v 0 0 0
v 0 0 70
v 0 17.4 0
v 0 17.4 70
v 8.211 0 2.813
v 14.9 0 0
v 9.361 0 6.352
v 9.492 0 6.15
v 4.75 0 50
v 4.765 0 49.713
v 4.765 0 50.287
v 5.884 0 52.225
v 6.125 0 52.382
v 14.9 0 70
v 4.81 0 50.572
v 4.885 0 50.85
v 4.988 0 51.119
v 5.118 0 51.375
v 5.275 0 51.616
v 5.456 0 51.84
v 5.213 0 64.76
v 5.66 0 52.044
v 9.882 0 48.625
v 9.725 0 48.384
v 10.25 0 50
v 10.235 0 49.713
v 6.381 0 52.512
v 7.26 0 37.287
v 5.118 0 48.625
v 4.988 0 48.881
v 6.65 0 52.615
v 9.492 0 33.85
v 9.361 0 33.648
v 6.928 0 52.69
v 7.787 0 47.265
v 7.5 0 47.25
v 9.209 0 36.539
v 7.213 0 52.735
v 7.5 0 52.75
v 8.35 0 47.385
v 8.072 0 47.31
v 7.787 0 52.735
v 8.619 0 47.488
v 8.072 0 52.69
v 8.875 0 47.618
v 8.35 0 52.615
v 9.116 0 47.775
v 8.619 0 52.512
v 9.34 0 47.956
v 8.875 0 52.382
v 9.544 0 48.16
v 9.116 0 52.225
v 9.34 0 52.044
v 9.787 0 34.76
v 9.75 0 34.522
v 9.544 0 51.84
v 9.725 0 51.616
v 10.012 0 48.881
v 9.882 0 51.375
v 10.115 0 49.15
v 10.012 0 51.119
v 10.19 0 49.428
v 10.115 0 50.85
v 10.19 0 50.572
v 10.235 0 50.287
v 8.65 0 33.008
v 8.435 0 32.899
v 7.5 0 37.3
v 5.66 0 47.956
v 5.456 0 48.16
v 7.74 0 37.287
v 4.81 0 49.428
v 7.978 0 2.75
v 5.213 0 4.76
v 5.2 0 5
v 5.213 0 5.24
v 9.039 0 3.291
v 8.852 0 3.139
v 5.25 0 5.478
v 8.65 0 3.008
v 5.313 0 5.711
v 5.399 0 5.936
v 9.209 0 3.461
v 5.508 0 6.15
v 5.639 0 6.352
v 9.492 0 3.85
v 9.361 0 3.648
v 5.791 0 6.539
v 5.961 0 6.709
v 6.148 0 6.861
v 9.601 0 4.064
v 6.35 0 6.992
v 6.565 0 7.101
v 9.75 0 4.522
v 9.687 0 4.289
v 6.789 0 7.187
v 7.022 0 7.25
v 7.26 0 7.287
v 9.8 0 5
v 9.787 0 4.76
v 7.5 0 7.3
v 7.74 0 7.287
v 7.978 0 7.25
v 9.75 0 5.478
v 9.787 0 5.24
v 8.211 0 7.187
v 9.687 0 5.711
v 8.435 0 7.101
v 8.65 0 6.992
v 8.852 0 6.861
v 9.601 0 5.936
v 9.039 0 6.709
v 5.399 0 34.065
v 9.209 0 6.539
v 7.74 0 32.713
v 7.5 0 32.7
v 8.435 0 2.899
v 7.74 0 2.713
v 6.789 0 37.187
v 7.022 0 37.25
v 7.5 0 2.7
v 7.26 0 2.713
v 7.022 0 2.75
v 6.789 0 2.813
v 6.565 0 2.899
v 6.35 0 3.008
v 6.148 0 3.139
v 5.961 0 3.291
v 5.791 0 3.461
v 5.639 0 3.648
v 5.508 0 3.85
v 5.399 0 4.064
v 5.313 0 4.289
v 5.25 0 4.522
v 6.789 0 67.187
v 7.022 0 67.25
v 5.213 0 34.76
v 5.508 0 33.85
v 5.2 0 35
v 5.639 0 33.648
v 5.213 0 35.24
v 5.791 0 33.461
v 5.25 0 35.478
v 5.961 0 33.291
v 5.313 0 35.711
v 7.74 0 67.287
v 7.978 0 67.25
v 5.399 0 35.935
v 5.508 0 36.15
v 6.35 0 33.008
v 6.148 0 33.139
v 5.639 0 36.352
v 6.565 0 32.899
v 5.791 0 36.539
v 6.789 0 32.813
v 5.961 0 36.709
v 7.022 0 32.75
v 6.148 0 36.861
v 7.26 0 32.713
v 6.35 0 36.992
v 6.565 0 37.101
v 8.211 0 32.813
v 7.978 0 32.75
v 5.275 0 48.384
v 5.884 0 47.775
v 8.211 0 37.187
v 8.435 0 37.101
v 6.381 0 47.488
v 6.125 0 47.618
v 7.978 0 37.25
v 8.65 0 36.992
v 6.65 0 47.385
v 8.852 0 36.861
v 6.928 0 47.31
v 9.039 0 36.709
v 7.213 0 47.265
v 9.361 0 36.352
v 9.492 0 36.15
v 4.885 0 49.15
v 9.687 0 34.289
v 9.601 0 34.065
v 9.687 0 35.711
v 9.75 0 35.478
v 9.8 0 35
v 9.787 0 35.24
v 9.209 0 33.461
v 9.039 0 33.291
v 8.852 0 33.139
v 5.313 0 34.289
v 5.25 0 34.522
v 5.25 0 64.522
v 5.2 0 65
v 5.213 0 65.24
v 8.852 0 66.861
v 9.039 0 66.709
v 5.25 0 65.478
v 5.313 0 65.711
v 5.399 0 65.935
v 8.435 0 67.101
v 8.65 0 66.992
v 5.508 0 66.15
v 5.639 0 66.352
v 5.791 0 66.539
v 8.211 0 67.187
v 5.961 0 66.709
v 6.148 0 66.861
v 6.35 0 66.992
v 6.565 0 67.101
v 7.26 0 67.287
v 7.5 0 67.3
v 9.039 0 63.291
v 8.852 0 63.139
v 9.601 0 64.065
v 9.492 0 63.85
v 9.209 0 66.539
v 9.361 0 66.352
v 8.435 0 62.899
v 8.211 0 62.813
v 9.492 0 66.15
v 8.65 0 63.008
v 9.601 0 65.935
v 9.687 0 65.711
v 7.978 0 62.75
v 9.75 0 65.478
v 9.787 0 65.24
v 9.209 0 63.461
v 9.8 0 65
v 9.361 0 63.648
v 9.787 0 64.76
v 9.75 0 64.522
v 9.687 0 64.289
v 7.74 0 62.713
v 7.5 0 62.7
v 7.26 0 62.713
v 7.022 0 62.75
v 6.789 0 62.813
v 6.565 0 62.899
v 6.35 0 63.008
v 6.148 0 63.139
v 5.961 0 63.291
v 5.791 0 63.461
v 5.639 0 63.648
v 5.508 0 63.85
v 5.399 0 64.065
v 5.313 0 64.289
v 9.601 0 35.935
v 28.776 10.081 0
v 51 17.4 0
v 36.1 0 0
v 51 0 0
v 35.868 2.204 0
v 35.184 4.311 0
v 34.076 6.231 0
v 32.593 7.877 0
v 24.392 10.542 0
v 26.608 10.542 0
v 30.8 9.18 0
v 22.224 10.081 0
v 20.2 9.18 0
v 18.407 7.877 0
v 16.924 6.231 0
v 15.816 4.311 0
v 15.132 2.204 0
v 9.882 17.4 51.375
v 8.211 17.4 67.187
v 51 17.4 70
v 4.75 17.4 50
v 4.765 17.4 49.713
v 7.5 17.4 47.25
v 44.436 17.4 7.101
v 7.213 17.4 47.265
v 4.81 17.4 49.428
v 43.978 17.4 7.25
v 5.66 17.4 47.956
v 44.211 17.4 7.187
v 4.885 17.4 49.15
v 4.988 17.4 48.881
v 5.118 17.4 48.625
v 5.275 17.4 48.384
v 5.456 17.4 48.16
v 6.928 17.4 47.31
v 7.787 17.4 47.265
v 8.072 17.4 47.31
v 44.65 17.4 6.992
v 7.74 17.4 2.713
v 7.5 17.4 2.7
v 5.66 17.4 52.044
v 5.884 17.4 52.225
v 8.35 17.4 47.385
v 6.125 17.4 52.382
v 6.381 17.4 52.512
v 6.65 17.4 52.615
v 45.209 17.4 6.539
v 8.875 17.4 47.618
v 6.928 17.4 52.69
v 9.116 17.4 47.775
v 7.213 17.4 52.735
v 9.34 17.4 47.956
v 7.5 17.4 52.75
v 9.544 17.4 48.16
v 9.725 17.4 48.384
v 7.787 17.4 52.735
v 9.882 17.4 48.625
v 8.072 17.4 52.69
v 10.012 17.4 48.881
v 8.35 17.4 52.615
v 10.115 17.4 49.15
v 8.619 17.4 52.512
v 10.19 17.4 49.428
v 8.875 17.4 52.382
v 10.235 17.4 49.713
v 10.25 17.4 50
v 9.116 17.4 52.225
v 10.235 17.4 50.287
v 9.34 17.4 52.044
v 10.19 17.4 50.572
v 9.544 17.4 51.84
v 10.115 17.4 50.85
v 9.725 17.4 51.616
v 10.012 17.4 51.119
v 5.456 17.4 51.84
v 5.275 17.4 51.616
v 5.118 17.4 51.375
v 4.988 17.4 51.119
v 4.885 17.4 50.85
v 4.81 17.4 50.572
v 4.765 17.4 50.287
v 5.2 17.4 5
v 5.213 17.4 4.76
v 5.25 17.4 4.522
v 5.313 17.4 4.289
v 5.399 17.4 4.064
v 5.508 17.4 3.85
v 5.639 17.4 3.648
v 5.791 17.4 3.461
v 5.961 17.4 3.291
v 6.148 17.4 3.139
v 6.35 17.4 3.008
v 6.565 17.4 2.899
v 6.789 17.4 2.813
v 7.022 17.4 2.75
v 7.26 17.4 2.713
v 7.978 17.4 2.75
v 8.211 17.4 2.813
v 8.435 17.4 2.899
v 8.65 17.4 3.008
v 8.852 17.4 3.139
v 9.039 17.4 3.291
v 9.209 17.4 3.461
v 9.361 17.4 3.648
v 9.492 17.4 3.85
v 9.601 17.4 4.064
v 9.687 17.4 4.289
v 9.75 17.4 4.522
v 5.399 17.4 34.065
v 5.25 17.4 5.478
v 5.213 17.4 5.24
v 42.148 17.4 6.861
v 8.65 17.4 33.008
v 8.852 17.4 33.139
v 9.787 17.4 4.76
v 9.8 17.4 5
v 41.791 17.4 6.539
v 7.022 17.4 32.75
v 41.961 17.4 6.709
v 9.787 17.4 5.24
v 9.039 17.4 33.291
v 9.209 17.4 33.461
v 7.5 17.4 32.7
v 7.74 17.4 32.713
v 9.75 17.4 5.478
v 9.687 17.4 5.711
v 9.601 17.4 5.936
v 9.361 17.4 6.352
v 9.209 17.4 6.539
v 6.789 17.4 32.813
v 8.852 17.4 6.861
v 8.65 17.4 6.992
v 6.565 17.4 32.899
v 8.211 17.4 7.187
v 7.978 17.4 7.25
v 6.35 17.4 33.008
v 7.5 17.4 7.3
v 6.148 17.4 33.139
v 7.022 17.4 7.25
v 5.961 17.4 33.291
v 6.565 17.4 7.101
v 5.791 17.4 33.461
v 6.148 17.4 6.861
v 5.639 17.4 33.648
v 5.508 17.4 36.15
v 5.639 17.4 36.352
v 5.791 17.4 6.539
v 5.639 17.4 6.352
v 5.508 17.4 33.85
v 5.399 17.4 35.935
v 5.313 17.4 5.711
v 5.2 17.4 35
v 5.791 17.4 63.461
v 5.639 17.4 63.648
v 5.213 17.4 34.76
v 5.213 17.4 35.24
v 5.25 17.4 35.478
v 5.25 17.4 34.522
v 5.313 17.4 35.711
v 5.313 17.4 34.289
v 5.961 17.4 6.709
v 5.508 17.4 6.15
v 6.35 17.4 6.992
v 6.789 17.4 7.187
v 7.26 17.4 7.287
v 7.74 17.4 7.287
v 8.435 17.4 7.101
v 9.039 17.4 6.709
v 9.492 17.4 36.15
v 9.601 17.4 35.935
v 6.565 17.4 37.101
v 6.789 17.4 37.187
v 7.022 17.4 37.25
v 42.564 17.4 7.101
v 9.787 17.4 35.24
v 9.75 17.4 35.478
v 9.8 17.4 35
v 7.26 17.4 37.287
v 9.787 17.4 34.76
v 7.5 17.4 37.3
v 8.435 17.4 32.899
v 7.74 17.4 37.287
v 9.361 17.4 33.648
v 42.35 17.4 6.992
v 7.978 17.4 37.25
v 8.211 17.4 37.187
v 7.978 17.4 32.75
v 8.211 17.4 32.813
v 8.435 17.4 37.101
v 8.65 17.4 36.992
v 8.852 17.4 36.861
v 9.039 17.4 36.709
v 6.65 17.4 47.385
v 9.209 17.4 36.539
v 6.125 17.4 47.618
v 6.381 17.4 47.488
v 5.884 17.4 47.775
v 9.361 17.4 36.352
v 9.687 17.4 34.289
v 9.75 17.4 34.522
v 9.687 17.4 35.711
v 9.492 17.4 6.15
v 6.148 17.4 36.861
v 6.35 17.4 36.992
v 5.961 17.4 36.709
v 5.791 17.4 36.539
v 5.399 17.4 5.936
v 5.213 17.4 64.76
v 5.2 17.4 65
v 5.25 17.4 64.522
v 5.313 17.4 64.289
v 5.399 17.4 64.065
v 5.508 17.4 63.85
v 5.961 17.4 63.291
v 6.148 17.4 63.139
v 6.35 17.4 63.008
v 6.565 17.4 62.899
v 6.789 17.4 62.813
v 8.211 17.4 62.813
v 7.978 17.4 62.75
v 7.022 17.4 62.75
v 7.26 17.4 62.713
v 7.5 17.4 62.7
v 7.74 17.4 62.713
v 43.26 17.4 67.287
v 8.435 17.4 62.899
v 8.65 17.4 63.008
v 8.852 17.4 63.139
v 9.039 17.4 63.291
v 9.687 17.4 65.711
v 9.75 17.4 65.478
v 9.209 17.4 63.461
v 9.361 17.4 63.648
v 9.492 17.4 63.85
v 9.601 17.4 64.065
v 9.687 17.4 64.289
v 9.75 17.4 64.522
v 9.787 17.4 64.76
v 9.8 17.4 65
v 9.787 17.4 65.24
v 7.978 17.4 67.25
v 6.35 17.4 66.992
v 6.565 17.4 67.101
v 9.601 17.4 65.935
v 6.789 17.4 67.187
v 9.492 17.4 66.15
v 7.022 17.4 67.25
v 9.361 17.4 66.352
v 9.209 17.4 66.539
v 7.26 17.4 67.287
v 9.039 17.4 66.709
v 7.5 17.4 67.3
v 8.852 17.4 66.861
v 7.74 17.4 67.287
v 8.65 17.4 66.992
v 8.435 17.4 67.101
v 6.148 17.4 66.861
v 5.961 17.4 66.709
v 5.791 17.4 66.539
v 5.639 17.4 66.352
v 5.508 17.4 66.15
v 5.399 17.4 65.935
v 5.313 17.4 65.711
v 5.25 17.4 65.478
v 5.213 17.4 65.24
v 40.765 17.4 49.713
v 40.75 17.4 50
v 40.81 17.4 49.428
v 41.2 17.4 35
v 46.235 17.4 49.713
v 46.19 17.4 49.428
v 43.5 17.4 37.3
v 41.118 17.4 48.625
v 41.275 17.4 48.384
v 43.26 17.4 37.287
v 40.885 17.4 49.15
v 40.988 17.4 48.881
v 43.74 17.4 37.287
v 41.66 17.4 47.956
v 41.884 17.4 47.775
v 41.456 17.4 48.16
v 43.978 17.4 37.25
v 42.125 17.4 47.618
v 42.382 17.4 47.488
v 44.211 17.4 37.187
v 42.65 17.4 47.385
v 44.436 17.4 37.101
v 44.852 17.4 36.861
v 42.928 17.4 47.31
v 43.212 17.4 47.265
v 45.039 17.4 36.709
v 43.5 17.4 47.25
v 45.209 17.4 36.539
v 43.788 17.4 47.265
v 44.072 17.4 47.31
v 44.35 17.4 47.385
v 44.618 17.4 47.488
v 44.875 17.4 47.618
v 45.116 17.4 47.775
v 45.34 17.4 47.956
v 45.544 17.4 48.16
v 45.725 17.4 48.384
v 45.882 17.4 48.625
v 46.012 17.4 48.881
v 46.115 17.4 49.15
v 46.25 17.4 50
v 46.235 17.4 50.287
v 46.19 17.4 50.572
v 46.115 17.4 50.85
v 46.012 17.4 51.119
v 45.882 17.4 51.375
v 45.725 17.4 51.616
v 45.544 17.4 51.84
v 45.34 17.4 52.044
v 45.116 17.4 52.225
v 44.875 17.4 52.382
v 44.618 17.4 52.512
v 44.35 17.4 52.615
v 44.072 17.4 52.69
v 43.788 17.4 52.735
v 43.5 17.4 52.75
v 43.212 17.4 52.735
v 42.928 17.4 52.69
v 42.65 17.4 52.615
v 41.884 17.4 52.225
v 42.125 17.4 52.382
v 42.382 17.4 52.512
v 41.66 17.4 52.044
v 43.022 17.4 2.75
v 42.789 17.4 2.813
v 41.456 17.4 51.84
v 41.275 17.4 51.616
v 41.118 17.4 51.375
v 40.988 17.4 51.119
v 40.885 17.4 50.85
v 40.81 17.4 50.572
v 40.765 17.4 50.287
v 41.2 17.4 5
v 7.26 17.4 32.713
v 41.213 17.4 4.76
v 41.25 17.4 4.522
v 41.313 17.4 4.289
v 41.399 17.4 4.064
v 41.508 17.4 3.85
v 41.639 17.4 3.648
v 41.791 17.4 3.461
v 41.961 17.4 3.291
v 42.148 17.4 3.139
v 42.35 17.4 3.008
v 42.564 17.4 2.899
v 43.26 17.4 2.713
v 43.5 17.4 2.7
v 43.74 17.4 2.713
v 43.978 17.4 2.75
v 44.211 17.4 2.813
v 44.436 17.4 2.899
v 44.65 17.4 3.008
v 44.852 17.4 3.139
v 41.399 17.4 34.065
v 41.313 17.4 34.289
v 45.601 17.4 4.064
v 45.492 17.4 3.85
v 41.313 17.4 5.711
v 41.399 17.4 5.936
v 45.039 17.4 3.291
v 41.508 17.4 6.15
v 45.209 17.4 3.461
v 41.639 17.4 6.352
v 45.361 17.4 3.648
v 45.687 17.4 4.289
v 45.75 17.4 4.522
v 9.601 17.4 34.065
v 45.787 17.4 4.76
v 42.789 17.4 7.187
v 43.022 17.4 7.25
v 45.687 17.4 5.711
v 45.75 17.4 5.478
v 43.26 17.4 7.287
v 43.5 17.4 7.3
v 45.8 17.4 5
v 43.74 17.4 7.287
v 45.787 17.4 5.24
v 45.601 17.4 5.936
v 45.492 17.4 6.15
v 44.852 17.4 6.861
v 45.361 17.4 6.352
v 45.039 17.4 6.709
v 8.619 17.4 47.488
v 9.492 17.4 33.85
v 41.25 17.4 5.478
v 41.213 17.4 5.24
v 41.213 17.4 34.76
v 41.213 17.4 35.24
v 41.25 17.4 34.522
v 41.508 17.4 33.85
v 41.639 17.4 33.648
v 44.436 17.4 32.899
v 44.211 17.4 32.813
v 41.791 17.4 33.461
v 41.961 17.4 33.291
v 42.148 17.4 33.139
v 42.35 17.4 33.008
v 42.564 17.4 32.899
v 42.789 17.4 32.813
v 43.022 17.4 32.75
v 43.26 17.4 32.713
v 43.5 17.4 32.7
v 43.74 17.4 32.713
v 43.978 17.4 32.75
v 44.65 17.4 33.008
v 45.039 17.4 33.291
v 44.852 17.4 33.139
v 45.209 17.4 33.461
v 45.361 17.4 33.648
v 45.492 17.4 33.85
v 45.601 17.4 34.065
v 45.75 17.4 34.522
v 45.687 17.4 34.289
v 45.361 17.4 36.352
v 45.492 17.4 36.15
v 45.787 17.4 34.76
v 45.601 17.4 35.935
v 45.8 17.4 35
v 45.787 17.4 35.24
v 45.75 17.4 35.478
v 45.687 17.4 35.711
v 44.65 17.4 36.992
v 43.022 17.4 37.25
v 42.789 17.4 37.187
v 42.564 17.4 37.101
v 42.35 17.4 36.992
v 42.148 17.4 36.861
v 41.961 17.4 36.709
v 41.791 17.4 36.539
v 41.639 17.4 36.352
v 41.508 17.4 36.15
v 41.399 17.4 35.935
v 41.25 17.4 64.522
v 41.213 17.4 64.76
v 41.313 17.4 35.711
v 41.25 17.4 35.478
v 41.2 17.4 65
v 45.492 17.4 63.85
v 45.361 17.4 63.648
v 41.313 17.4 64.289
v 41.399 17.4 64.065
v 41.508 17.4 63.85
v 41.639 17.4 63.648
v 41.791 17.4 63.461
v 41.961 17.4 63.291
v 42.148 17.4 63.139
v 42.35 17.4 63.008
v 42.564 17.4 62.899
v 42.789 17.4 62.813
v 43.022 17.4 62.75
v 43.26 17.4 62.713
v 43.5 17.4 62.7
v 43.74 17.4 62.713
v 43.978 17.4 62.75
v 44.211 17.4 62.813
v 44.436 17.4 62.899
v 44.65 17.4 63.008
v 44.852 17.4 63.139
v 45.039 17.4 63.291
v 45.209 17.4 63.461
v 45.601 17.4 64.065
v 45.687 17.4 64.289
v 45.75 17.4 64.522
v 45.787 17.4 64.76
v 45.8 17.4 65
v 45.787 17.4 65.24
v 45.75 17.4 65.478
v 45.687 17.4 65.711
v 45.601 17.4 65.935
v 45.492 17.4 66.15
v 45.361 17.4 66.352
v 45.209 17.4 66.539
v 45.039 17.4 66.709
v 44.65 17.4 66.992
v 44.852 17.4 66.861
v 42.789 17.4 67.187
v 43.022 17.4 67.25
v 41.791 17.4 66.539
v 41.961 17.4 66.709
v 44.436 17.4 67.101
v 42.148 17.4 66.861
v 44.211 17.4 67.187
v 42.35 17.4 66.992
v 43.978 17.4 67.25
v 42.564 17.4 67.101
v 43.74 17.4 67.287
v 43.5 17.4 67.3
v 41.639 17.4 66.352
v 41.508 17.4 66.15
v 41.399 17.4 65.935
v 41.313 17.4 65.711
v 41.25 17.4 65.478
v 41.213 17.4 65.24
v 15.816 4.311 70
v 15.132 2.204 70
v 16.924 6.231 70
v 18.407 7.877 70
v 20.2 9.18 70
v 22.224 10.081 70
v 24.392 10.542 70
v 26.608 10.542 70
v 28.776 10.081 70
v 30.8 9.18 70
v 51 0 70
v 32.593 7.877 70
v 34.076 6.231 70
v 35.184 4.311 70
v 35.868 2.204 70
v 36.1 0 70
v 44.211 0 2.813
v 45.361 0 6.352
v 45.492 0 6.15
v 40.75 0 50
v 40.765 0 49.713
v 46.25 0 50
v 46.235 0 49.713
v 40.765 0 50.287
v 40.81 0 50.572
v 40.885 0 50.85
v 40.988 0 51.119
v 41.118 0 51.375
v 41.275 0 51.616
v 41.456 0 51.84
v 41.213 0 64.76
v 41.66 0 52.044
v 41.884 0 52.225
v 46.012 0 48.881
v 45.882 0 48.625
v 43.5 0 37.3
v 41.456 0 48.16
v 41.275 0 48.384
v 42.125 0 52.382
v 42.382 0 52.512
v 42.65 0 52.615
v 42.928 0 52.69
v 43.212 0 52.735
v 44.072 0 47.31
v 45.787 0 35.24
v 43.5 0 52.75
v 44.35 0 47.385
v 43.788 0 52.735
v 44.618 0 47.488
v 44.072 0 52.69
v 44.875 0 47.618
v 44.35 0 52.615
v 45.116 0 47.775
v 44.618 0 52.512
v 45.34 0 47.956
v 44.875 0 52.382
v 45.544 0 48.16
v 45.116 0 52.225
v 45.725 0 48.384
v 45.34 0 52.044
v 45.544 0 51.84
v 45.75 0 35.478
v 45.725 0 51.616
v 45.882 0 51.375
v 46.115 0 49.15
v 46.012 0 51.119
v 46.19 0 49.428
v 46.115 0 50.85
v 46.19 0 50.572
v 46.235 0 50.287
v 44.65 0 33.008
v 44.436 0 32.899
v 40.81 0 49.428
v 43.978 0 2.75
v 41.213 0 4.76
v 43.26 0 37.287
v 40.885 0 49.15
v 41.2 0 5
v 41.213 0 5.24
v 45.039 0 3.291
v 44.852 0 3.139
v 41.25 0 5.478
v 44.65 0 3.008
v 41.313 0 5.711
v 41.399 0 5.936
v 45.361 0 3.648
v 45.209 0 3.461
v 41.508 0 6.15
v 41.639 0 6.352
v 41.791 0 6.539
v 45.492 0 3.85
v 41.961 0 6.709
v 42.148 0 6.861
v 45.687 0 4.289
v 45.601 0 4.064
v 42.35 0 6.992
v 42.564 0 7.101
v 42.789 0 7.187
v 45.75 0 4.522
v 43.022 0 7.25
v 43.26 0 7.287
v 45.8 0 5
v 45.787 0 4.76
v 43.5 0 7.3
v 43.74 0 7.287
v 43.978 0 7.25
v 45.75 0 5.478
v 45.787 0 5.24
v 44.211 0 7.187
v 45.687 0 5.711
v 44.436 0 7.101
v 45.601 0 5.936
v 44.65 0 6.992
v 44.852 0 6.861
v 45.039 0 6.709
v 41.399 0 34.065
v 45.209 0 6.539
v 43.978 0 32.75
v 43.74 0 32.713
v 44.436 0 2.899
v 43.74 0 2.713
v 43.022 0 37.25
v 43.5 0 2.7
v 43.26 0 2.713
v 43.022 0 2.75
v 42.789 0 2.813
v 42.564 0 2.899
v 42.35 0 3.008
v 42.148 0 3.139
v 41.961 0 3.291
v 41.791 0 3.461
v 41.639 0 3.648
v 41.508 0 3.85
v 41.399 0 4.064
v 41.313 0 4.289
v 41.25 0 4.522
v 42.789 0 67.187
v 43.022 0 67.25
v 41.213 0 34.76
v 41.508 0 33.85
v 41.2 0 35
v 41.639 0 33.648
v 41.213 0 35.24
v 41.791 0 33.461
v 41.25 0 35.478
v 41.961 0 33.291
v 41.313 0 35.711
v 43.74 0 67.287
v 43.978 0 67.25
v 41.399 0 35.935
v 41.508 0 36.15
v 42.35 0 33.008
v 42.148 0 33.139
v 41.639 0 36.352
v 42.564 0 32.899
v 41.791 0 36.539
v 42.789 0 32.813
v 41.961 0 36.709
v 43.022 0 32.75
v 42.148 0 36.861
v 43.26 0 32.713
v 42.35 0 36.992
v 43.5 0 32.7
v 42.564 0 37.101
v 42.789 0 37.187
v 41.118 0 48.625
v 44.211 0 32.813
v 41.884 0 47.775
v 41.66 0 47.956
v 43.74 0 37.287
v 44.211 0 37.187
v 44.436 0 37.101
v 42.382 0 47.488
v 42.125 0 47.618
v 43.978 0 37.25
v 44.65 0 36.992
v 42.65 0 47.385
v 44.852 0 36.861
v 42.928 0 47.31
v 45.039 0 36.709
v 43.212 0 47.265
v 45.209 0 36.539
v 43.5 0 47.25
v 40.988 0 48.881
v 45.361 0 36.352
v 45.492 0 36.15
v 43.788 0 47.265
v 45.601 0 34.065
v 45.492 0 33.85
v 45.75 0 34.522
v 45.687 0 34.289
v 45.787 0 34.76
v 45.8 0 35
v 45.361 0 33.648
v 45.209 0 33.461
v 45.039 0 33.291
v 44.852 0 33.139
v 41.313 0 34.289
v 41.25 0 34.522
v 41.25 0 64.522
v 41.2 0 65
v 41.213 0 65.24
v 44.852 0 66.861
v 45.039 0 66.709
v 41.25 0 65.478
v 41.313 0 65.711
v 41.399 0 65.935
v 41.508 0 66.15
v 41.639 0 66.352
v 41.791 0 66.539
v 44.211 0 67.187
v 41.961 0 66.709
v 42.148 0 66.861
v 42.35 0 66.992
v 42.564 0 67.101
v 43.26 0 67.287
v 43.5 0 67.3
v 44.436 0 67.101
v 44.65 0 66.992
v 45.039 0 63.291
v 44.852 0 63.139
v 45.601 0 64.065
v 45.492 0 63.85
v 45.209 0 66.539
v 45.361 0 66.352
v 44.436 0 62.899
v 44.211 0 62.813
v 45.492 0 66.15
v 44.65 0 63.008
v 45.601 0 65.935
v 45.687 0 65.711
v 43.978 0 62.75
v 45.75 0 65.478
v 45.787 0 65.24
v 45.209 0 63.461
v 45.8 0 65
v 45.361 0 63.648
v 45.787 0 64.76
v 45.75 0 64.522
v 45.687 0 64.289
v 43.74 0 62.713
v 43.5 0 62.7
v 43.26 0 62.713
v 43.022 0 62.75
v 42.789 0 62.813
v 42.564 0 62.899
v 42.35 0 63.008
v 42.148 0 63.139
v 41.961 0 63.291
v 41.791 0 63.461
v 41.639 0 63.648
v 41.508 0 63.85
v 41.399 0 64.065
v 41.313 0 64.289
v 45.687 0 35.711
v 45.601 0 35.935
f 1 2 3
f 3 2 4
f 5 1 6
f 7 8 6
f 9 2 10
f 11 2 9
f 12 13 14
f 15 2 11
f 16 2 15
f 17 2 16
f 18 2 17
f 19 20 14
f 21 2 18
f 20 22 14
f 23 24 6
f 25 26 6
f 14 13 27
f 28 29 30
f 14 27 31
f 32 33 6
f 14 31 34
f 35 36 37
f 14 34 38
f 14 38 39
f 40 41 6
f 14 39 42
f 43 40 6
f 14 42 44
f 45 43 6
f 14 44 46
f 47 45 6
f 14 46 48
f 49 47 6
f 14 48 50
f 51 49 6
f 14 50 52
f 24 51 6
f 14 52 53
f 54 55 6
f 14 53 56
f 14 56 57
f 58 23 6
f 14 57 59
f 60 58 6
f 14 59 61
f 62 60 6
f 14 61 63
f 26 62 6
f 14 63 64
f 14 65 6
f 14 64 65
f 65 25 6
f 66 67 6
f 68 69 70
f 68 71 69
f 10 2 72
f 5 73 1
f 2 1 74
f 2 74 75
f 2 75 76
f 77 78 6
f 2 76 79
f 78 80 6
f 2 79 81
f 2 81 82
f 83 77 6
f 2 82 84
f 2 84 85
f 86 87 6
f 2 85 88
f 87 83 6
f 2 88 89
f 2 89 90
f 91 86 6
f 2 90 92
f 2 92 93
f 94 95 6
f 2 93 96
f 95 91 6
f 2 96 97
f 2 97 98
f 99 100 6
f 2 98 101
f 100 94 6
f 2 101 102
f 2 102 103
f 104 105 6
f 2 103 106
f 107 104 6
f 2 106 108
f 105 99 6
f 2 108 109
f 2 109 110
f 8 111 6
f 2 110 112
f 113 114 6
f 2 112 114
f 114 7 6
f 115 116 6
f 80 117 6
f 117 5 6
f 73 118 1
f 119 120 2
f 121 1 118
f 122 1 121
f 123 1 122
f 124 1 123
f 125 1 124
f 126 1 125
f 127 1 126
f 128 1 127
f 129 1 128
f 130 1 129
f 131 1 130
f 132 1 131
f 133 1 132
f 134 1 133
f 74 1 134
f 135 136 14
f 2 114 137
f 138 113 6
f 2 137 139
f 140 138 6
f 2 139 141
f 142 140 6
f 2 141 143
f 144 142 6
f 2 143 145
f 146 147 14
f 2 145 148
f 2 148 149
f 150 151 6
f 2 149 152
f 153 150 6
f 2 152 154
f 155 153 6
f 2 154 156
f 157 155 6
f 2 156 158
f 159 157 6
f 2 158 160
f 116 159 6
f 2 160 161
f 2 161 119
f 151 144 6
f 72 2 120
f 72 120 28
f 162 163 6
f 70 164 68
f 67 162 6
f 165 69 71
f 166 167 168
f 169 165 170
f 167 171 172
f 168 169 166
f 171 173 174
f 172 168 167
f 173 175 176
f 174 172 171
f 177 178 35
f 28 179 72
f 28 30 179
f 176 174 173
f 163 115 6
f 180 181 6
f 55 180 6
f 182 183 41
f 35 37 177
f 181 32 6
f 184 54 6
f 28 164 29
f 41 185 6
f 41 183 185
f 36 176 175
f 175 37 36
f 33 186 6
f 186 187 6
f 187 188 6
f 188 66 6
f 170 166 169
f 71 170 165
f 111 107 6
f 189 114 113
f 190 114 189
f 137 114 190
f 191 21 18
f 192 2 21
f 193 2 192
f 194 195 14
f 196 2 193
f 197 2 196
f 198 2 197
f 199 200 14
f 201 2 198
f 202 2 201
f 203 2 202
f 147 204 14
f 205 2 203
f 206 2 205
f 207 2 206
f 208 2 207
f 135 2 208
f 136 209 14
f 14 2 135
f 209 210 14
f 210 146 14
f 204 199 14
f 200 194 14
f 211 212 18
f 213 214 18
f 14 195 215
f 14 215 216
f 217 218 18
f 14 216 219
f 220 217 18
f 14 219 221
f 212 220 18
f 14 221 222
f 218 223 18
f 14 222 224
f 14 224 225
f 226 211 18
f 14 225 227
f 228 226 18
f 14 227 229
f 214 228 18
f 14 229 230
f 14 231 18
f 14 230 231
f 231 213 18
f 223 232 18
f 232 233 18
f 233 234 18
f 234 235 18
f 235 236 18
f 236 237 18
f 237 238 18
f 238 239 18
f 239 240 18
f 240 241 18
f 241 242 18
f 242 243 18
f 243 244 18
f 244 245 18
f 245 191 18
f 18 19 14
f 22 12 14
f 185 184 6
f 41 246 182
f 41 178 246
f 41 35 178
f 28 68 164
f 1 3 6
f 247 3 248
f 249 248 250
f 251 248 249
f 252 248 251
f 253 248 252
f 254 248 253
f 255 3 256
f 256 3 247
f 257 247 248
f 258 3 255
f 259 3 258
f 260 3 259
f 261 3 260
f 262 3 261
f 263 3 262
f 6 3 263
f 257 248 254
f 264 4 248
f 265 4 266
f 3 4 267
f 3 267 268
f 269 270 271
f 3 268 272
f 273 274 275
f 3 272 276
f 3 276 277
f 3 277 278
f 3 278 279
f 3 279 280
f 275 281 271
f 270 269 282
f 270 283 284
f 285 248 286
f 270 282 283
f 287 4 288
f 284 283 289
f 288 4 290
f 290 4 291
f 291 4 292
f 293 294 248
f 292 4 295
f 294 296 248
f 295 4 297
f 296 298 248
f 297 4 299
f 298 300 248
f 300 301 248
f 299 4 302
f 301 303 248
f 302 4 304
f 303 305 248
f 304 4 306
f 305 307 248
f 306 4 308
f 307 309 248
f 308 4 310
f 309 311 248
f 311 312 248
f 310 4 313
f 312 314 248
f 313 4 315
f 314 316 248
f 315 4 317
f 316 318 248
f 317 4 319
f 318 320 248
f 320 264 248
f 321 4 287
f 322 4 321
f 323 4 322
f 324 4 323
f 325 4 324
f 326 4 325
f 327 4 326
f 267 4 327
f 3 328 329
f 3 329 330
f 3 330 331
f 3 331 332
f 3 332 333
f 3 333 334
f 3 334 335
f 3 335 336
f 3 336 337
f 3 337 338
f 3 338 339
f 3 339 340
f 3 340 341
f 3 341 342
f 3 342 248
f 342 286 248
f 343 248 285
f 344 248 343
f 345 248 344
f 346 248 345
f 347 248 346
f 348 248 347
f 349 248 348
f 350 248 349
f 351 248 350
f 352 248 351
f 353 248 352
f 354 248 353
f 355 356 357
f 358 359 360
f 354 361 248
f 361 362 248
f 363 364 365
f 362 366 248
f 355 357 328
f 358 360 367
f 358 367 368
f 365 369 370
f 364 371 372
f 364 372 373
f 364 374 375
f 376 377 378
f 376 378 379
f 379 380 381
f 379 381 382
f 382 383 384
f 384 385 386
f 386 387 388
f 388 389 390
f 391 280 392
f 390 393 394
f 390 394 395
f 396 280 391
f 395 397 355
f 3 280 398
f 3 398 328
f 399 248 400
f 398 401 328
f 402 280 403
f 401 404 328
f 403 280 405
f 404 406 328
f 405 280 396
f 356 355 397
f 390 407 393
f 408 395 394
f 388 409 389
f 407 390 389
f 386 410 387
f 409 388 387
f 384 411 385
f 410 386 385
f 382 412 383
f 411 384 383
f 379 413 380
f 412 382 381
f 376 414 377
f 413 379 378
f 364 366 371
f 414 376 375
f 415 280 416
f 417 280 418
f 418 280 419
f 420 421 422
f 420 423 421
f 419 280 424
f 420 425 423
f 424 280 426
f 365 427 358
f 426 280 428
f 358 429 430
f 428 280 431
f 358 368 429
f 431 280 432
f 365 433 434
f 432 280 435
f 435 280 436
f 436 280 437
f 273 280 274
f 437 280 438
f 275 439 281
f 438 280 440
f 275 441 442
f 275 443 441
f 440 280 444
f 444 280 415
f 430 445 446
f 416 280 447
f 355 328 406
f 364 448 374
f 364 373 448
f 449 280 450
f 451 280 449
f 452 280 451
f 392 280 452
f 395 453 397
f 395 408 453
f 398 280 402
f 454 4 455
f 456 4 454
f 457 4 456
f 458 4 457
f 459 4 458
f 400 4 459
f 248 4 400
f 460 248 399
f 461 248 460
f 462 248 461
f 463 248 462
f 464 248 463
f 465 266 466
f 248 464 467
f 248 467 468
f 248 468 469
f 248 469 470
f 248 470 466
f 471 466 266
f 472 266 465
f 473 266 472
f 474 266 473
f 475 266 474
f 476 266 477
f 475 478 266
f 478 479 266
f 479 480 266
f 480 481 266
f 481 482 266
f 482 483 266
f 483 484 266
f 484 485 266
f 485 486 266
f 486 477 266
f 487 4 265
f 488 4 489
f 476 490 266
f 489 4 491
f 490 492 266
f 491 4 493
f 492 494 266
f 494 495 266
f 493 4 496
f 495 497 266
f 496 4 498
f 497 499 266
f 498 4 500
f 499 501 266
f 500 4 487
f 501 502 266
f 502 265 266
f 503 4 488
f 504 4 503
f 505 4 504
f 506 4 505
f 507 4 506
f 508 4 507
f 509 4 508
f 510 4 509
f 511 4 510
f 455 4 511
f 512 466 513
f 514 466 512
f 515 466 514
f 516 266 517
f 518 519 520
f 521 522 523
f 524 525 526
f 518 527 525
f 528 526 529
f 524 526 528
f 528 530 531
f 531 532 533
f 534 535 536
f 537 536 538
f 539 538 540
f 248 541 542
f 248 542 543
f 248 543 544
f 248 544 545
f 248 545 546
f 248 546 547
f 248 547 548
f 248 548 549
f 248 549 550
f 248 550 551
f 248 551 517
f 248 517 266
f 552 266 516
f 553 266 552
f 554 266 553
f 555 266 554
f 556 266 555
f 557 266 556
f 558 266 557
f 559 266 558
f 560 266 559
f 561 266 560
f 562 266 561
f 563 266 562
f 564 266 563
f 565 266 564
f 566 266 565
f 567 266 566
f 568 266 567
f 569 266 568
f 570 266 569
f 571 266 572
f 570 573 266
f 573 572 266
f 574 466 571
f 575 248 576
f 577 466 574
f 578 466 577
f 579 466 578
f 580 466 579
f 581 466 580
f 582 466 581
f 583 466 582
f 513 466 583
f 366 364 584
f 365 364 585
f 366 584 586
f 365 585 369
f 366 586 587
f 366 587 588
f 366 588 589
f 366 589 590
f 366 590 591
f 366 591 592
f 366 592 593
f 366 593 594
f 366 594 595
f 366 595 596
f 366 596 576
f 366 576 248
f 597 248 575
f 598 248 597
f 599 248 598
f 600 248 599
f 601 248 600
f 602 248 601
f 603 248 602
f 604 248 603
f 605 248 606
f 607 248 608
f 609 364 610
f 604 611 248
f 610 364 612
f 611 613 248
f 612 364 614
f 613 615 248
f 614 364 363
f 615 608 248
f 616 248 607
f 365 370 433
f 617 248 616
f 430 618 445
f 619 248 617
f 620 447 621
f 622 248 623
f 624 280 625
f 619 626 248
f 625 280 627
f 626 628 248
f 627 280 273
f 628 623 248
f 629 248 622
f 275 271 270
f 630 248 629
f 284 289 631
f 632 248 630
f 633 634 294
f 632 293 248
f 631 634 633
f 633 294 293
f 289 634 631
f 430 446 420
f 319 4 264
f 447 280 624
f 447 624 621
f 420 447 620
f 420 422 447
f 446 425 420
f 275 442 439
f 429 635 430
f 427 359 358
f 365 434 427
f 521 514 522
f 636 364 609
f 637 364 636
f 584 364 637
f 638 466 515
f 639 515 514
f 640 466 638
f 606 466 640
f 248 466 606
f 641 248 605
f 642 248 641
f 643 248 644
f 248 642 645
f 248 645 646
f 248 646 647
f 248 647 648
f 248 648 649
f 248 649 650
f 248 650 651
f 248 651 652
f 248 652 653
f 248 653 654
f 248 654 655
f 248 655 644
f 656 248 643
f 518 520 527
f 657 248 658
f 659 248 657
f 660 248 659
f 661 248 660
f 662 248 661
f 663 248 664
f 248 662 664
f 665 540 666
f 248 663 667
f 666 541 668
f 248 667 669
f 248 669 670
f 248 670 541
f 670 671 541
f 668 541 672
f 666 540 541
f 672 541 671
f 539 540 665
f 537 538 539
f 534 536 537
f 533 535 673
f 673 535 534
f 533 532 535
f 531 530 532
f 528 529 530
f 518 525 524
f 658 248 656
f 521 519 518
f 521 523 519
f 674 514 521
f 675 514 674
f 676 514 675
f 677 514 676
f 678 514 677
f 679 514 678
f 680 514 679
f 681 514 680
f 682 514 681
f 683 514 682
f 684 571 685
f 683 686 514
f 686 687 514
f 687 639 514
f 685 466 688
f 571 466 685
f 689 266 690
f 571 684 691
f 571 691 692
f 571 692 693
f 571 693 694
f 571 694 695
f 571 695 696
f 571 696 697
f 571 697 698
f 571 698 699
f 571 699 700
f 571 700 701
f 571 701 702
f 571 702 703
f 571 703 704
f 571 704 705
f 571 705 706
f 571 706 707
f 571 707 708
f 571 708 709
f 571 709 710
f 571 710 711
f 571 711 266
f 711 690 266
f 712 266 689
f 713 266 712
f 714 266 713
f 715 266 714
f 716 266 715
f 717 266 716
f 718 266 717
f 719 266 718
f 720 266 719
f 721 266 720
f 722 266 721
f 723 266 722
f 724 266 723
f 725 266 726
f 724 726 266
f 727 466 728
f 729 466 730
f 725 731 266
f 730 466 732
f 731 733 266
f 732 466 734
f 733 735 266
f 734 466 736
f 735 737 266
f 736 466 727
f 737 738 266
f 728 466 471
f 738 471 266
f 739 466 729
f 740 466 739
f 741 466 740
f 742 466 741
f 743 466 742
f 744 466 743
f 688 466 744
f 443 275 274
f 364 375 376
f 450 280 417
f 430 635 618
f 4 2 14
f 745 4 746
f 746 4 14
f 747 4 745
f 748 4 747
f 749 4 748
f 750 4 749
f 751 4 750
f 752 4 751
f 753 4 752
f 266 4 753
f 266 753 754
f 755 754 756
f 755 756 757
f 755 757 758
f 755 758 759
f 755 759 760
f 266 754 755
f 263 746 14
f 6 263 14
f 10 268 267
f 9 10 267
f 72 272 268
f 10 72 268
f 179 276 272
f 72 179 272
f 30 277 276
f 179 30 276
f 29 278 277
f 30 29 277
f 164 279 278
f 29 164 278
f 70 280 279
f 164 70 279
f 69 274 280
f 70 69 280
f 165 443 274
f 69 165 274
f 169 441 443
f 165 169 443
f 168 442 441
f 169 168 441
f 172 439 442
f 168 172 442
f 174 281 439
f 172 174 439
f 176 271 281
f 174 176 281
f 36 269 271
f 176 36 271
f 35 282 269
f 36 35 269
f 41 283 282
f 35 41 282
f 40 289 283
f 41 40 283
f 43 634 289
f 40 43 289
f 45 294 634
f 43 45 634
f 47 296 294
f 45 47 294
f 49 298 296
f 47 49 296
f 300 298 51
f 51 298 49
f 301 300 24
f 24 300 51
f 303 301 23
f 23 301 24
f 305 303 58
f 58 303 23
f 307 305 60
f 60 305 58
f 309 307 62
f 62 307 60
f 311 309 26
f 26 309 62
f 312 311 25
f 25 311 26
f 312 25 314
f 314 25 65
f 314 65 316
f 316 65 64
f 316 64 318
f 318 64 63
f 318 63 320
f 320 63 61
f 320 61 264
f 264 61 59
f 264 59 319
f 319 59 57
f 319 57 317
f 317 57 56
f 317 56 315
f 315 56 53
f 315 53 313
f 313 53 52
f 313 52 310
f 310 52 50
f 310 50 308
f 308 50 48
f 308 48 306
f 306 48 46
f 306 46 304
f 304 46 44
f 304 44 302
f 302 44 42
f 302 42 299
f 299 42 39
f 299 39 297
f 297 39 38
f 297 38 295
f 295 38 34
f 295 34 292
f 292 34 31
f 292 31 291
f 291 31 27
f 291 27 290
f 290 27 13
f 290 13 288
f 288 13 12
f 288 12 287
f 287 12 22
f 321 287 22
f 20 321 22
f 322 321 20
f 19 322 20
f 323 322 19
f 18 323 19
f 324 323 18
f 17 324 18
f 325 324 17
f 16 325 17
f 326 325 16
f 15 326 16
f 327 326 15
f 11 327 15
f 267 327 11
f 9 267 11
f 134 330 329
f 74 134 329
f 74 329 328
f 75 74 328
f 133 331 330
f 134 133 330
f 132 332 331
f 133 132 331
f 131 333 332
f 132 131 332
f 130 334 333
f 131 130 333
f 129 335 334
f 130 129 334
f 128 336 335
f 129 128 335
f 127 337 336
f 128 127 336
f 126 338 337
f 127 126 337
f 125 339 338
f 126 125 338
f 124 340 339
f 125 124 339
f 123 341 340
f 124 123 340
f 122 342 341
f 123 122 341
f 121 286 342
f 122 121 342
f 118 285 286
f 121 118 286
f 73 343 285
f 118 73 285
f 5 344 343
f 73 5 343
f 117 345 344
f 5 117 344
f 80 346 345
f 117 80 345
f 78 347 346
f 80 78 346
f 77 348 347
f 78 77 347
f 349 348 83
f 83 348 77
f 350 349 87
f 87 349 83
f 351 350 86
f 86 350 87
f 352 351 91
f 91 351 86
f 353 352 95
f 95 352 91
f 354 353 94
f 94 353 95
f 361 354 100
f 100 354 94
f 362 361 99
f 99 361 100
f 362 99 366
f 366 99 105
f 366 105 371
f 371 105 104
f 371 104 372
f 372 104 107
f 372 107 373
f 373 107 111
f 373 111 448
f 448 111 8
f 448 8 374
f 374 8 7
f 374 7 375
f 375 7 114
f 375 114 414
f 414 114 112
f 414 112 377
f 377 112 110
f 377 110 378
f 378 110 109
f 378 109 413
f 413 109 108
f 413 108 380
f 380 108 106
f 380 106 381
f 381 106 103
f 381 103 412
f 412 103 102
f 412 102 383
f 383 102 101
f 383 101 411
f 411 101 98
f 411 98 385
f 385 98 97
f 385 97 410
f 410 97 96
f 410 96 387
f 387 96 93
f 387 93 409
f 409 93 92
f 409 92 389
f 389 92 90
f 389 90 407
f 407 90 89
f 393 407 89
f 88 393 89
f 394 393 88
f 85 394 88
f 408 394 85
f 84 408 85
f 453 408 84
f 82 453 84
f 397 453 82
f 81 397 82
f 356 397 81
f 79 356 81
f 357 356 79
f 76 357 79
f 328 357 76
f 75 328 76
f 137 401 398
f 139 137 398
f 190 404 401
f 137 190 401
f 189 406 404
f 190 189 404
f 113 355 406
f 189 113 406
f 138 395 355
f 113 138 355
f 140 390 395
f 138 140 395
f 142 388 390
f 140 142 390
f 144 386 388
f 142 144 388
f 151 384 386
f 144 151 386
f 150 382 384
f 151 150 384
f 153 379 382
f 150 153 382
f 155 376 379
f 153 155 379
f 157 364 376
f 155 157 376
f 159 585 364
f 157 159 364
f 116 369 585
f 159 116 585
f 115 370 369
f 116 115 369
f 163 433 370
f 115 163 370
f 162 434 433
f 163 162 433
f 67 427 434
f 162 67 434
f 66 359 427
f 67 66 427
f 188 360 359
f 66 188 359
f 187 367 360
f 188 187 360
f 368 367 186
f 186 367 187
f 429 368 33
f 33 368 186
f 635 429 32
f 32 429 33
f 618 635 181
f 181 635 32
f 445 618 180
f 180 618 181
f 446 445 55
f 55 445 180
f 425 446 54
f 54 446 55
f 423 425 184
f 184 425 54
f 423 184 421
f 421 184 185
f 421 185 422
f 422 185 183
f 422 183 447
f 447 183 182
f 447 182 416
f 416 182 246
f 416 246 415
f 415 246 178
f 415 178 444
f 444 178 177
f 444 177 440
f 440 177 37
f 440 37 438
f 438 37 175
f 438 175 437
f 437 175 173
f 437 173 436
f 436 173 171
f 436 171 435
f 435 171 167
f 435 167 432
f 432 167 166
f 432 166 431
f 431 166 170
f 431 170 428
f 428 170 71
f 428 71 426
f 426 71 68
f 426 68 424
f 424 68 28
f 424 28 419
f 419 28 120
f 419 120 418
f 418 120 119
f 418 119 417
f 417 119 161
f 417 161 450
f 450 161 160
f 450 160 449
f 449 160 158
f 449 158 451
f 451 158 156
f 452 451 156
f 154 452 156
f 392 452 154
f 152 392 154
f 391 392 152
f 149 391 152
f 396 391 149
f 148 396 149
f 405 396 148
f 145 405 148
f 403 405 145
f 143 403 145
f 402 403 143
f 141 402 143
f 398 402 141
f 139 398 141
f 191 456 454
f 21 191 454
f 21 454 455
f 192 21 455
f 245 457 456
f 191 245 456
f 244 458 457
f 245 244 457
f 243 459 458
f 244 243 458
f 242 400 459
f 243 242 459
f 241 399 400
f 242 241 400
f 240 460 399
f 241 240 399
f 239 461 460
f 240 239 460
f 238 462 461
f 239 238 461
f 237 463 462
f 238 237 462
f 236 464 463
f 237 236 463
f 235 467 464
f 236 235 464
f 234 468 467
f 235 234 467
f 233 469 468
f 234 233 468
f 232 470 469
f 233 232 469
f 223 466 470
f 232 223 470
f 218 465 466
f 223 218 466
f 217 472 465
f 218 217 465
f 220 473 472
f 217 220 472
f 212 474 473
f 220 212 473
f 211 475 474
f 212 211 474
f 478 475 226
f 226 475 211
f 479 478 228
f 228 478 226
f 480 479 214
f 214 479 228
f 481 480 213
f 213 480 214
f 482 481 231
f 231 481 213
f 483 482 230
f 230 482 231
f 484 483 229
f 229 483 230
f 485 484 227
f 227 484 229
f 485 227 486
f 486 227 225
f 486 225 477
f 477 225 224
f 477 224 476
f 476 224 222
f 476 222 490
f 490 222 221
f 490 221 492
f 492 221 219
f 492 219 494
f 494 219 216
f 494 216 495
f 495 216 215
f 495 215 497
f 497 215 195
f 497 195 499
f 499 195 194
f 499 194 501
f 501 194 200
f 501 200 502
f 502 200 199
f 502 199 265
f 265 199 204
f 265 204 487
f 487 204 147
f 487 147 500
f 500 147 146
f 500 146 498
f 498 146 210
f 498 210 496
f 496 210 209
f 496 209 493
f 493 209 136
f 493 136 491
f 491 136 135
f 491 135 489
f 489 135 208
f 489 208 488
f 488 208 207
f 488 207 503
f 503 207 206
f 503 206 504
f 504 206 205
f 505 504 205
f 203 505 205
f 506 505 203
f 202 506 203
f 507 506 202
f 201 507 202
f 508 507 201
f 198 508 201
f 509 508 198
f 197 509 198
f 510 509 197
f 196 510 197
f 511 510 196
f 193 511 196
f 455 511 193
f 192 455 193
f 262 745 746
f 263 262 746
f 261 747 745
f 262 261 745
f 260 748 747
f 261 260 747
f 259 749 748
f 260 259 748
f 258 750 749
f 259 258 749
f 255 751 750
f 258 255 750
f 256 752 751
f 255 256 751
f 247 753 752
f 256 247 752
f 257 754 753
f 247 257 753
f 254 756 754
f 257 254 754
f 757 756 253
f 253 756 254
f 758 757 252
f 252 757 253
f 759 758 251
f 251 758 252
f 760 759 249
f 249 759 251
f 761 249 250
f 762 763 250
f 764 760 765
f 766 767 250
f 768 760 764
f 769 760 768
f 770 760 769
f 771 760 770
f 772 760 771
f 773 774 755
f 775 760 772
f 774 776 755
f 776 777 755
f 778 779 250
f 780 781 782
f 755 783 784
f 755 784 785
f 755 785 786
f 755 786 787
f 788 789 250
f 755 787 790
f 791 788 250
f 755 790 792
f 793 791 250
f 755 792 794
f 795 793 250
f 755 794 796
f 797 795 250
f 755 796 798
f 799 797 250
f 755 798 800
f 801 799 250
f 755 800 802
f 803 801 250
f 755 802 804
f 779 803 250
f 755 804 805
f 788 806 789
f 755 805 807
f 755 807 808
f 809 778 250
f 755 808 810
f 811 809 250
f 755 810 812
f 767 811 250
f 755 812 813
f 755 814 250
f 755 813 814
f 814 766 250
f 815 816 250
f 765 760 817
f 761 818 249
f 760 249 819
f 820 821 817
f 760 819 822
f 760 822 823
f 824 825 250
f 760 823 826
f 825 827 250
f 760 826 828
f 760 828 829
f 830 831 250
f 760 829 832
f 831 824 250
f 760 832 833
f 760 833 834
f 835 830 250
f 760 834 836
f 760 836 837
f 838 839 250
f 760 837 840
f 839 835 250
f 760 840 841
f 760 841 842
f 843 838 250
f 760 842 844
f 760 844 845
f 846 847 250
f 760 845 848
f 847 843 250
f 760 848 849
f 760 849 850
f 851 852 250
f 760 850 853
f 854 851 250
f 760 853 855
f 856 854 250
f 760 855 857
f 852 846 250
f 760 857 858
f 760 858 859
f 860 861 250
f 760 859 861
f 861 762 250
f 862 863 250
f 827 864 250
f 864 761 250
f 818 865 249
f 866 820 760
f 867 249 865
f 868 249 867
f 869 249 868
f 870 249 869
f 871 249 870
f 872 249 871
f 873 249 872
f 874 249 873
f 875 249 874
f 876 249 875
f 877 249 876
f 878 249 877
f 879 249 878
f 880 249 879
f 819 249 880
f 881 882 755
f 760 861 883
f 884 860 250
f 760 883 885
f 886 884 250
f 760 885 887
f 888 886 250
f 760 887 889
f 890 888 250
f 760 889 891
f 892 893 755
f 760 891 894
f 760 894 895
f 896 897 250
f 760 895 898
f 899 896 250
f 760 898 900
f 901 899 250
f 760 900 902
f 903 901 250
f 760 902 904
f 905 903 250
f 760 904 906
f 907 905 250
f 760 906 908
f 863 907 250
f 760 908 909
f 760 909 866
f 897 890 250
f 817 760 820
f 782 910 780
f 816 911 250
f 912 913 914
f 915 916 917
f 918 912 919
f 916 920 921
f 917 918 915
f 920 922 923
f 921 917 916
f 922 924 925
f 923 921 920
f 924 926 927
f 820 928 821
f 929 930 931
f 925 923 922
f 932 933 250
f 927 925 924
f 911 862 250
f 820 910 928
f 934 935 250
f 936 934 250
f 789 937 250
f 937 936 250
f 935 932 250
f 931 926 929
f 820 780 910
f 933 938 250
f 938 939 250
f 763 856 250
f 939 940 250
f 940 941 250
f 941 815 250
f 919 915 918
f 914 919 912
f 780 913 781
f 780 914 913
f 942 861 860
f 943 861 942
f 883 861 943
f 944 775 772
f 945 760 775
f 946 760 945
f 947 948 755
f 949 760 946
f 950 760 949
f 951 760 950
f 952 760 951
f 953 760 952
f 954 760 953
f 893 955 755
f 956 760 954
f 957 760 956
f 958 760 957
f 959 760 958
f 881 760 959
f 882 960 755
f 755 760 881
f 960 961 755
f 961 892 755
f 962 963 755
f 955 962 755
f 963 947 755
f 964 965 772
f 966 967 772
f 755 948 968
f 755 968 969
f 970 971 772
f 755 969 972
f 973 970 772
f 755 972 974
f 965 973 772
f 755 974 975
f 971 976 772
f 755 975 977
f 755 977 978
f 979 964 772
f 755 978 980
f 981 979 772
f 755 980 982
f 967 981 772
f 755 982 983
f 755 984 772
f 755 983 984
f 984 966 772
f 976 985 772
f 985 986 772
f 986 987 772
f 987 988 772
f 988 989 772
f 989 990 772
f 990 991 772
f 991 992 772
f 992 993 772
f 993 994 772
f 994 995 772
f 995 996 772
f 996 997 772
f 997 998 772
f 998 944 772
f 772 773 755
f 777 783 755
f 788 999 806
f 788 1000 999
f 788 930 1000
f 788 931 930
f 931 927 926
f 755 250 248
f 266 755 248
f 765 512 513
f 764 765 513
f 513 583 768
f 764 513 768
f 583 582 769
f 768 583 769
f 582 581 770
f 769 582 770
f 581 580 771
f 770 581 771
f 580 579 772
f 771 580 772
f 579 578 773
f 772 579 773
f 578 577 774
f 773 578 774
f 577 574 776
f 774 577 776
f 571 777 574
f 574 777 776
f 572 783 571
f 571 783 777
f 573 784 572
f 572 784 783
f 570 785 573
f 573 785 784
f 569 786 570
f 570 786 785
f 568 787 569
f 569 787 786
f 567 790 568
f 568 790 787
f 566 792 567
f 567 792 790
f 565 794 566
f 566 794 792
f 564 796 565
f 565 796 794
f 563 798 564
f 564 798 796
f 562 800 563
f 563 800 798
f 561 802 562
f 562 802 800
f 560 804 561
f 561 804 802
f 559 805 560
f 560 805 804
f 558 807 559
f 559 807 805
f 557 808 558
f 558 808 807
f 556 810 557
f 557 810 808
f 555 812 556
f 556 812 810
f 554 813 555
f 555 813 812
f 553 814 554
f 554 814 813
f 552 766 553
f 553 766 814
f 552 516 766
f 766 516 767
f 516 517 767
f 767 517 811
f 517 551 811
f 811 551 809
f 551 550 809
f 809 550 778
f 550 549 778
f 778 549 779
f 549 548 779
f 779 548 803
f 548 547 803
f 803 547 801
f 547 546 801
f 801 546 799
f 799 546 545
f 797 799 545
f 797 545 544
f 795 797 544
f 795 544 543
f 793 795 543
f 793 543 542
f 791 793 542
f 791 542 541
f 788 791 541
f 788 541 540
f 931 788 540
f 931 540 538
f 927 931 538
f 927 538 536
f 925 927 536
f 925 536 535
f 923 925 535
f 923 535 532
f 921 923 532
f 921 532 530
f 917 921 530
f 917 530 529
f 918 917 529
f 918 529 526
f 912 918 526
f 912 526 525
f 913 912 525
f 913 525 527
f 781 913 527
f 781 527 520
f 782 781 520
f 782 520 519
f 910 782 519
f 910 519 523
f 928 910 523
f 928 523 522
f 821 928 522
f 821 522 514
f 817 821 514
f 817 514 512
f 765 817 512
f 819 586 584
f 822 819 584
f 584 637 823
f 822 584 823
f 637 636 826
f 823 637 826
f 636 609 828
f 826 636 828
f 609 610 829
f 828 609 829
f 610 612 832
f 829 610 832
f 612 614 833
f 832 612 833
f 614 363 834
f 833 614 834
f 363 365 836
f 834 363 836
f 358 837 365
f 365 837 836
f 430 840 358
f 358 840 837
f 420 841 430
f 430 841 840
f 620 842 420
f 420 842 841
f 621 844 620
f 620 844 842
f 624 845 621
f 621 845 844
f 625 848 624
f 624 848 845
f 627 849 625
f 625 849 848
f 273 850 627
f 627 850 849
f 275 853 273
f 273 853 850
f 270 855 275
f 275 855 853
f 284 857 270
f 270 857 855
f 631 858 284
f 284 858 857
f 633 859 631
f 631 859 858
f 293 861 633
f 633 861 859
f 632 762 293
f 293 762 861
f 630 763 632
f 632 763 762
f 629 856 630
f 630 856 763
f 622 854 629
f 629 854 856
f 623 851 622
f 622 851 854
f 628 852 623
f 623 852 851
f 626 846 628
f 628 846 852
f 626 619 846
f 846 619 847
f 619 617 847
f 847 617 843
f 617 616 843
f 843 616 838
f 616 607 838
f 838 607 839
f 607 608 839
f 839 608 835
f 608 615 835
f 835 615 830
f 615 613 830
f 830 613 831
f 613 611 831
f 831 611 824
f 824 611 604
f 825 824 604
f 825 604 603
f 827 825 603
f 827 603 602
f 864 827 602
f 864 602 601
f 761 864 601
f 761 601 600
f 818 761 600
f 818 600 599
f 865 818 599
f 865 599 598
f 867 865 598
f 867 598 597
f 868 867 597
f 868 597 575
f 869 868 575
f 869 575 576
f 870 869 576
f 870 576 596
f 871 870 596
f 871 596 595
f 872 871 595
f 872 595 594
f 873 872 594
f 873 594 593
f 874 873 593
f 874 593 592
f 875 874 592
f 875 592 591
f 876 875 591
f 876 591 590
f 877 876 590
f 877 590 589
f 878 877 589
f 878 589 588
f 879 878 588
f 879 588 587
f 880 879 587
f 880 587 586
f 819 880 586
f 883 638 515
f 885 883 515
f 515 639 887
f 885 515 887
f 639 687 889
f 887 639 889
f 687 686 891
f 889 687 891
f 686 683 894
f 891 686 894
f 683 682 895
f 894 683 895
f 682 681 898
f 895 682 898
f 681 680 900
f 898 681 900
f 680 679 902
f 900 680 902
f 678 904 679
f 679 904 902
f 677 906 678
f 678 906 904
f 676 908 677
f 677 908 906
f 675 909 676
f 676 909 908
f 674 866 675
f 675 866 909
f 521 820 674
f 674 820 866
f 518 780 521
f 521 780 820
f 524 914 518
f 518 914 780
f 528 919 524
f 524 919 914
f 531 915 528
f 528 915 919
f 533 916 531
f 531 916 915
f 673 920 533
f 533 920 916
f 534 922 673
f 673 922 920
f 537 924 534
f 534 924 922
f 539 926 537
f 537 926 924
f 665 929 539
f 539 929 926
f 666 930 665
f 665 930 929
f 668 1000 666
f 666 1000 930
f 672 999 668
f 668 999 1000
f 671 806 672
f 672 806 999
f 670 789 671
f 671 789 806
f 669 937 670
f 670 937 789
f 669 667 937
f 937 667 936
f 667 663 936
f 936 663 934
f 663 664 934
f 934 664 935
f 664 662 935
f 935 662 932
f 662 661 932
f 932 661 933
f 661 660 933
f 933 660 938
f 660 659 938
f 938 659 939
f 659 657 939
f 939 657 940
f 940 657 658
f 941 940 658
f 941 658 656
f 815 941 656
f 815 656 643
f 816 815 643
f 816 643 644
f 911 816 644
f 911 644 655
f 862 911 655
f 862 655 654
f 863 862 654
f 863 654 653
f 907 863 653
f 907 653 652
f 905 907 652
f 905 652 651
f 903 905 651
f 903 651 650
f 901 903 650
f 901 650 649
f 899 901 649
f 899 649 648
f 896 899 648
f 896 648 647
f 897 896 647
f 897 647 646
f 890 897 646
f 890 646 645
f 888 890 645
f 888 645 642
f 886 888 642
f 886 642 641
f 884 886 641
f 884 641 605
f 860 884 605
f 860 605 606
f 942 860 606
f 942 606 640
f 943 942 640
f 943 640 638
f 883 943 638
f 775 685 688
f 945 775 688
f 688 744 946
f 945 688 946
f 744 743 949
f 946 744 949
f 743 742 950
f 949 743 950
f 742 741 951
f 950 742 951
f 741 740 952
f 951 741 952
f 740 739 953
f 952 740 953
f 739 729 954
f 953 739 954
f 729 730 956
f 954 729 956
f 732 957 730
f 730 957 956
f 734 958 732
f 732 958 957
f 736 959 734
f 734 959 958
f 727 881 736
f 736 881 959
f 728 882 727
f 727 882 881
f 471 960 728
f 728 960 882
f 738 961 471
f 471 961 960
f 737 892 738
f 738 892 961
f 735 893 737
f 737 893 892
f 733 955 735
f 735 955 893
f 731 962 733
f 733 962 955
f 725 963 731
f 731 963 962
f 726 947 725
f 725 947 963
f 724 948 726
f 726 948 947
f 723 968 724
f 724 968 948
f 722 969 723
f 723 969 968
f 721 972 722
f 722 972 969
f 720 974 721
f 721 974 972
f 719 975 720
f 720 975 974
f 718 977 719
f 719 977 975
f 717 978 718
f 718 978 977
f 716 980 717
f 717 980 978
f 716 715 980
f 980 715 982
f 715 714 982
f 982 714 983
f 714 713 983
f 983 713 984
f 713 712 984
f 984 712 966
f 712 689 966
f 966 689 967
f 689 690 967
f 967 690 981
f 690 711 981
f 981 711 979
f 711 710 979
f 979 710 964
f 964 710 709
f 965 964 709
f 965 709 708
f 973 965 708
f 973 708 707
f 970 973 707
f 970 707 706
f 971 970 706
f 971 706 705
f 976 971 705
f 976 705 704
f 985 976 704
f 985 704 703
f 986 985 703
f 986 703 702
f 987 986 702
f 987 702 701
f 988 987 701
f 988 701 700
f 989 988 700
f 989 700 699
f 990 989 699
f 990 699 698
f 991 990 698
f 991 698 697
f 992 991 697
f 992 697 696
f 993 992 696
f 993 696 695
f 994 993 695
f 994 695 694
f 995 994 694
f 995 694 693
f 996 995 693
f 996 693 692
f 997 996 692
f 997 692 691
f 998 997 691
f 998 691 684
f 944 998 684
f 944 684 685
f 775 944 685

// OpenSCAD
// file: library.scad
//rounded cube Functions from: http://www.thingiverse.com/thing:38069


module cube_fillet(size,radius=-1,vertical,top,bottom,center=false,$fn=0){
    if (center) {
        cube_fillet_inside(size, radius, vertical, top, bottom, $fn=$fn);
    } else {
        translate([size[0]/2, size[1]/2, size[2]/2])
            cube_fillet_inside(size, radius, vertical, top, bottom, $fn=$fn);
    }
}
module fillet(radius, height=100, $fn=60) {  
    //this creates negative of fillet,
    //i.e. thing to be substracted from object
    translate([-radius, -radius, -height/2-0.01])
        difference() {
            cube([radius*2, radius*2, height+0.02]);
            cylinder(r=radius, h=height+0.02, $fn=$fn);
        }
}

module cube_negative_fillet(size,radius=-1,vertical, top,bottom,$fn=0){
    j=[1,0,1,0];

    for (i=[0:3]) {
        if (radius > -1) {
            rotate([0, 0, 90*i])
                translate([size[1-j[i]]/2, size[j[i]]/2, 0])
                    fillet(radius, size[2], $fn=$fn);
        } else {
            rotate([0, 0, 90*i])
                translate([size[1-j[i]]/2, size[j[i]]/2, 0])
                    fillet(vertical[i], size[2], $fn=$fn);

        }
        rotate([90*i, -90, 0])
            translate([size[2]/2, size[j[i]]/2, 0 ])
                fillet(top[i], size[1-j[i]], $fn=$fn);
        rotate([90*(4-i), 90, 0])
            translate([size[2]/2, size[j[i]]/2, 0])
                fillet(bottom[i], size[1-j[i]], $fn=$fn);
    }
}

module cube_fillet_inside(size,radius=-1,vertical,top,bottom,$fn=0){

    if (radius == 0) {
        cube(size, center=true);
    } else {
        difference() {
            cube(size, center=true);
            cube_negative_fillet(size, radius, vertical, top, bottom, $fn=$fn);
        }
    }
}
// file: dimensions.scad
// Dimensions
// Author: sdavi


LM8UU = [8, 15, 24];//rod diameter,outter diameter, length
LM12UU = [12, 21, 30];
LM12LUU = [12, 21, 57];

BEARING_624 = [4,13,5]; //inner diameter(hole), outter diameter, thickness (http://reprap.org/wiki/Ball_bearing)
BEARING_2x624 = [4, 13, 10]; // 2 624 bearings together, good size for GT2

BEARING_6300 = [10,35,11]; //inner diameter, outer diameter, thickness



GT2_belt_width = 6;
GT2_belt_pitch = 2;
GT2_belt_thickness = 1.38;
GT2_belt_tooth_height = 0.75;  
GT2_belt_tooth_ratio = 0.5;



GT2_pulley_geared_diameter=12.2;//measured from top of tooth to top of tooth opp side// 12.2 is for the 20 tooth pulley

//from metric (prusa i3)
m4_diameter = 4.6;
m4_nut_diameter = 7.6;
m4_nut_diameter_horizontal = 8.15;

m3_diameter = 3.6;
m3_nut_diameter = 5.3;
m3_nut_diameter_horizontal = 6.8;
m3_washer_diameter = 6.9;
//end i3 variables

m5_diameter = 5.5;

//Hex Head M3x30: Head 5.5mm flat to flat, 2.12mm thick
m3_hex_head_diameter = 5.5*2/sqrt(3) + 0.2;

M4 = m4_diameter;
M3 = m3_diameter;
M5 = m5_diameter;
m4_washer_thickness = 0.8; //flat and penny washers
m4_washer_diameter = 9.6;

nema17_holes = 31;// mm between screws
nema17_width = 42; //width
// file: configuration.scad
// Configuration
// Author: sdavi


include <dimensions.scad>
use <library.scad>


x_rod_distance = 45;

y_bearing = LM8UU;
x_bearing = LM8UU;
z_bearing = LM12LUU;
belt_bearing = BEARING_2x624;


end_belt_bearing_distance = 25;// distance between 2 bearings on y-ends
belt_clearance = 9.5; //space for belts

frame_screw = M5; //m5 screws for v/tslot

frame_spacer_height = 18; //height to spacer to mount to frame to clear x-ends 


// calculated vars

//y bearing block
y_bearing_block_length = 2*y_bearing[2] + M3*2 + 5;
y_bearing_block_width = y_bearing[1]+5;
y_bearing_block_height = 6+y_bearing[1]/2;

xy_bearing_distance = y_bearing_block_width/2+belt_clearance+belt_bearing[1]/2; //distance between center of y-bearing to center of x-belt bearing 


//min height for belt bearings
min_beltbearing_height = max(((belt_bearing[2]+m4_washer_thickness*2) * 2), y_bearing_block_height);
// file: lib/z_carriage.scad
// z-carriage
// Author: sdavi


include <../configuration.scad>
include <../dimensions.scad>


z_bearing_block_width = z_bearing[1] + 15 + 15; // 15 to cater for head of M5 screw
z_bearing_block_depth = 34.8/2; // if printed at 0.3mm and for 40mm screws
z_bearing_block_length = 70;

bed_arm_length = z_bearing_block_width+34;
bed_arm_width = 20;

//M5x40 to attach to arm
//M4x??

/*
translate([0,0,5+z_bearing_block_length])z_carriage(arm=0);
z_carriage(arm=1);

//mirrored end
translate([-5-z_bearing_block_width,0,5+z_bearing_block_length])z_carriage(arm=0);
translate([-5,0,0])mirror([1,0,0])z_carriage(arm=1);
*/

module z_carriage(arm=1){


	difference(){
		union(){
			cube([z_bearing_block_width, z_bearing_block_depth, z_bearing_block_length]);
			if(arm==1){

				translate([0,0,z_bearing_block_length-30])  //arm
					cube([bed_arm_length, z_bearing_block_depth, bed_arm_width]);

				//brace support
				translate([z_bearing_block_width, 0, z_bearing_block_length-30])
					rotate([-90,0,0])linear_extrude(height=z_bearing_block_depth, slices = 20)
					polygon( points=[[0,0],
							    		[20,0],
					              	[0,20]] 
					);						
			}
		} // end union

		translate([z_bearing_block_width/2, 0,-0.1]) cylinder(d=z_bearing[1]+0.2, h=z_bearing_block_length+0.2, $fn=30);




			//Arm screws (M5)
			translate([0,0,z_bearing_block_length-20]){
				translate([15/2,-0.1,0]) rotate([-90,0,0]) cylinder(d=frame_screw, h=z_bearing_block_depth+0.2, $fn=60);
				translate([15+z_bearing[1]+15/2,-0.1,0]) rotate([-90,0,0]) cylinder(d=frame_screw, h=z_bearing_block_depth+0.2, $fn=60);
				translate([z_bearing_block_width+6,-0.1,0]) rotate([-90,0,0]) cylinder(d=frame_screw, h=z_bearing_block_depth+0.2, $fn=60);
				translate([bed_arm_length-13,-0.1,0]) rotate([-90,0,0]) cylinder(d=frame_screw, h=z_bearing_block_depth+0.2, $fn=60);
	
			}


		//block screws
		translate([15/2, -0.1, z_bearing_block_length-5]) { //top
			rotate([-90,0,0]) cylinder(d=M4, h=z_bearing_block_depth+0.2, $fn=60);
			translate([15+z_bearing[1], 0,0])rotate([-90,0,0]) cylinder(d=M4, h=z_bearing_block_depth+0.2, $fn=60);
		}

		translate([15/2, -0.1, z_bearing_block_length/2]) { //center
			rotate([-90,0,0]) cylinder(d=M4, h=z_bearing_block_depth+0.2, $fn=60); 
			translate([15+z_bearing[1], 0,0])rotate([-90,0,0]) cylinder(d=M4, h=z_bearing_block_depth+0.2, $fn=60); 
		}

		translate([15/2, -0.1, 5]) {//bottom
			rotate([-90,0,0]) cylinder(d=M4, h=z_bearing_block_depth+0.2, $fn=60); 	
			translate([15+z_bearing[1],0,0])rotate([-90,0,0]) cylinder(d=M4, h=z_bearing_block_depth+0.2, $fn=60); 
		}
				



	} //end difference


}
// main file
// z_carriage
// Author: sdavi


include <lib/z_carriage.scad>


z_carriage(arm=0);
